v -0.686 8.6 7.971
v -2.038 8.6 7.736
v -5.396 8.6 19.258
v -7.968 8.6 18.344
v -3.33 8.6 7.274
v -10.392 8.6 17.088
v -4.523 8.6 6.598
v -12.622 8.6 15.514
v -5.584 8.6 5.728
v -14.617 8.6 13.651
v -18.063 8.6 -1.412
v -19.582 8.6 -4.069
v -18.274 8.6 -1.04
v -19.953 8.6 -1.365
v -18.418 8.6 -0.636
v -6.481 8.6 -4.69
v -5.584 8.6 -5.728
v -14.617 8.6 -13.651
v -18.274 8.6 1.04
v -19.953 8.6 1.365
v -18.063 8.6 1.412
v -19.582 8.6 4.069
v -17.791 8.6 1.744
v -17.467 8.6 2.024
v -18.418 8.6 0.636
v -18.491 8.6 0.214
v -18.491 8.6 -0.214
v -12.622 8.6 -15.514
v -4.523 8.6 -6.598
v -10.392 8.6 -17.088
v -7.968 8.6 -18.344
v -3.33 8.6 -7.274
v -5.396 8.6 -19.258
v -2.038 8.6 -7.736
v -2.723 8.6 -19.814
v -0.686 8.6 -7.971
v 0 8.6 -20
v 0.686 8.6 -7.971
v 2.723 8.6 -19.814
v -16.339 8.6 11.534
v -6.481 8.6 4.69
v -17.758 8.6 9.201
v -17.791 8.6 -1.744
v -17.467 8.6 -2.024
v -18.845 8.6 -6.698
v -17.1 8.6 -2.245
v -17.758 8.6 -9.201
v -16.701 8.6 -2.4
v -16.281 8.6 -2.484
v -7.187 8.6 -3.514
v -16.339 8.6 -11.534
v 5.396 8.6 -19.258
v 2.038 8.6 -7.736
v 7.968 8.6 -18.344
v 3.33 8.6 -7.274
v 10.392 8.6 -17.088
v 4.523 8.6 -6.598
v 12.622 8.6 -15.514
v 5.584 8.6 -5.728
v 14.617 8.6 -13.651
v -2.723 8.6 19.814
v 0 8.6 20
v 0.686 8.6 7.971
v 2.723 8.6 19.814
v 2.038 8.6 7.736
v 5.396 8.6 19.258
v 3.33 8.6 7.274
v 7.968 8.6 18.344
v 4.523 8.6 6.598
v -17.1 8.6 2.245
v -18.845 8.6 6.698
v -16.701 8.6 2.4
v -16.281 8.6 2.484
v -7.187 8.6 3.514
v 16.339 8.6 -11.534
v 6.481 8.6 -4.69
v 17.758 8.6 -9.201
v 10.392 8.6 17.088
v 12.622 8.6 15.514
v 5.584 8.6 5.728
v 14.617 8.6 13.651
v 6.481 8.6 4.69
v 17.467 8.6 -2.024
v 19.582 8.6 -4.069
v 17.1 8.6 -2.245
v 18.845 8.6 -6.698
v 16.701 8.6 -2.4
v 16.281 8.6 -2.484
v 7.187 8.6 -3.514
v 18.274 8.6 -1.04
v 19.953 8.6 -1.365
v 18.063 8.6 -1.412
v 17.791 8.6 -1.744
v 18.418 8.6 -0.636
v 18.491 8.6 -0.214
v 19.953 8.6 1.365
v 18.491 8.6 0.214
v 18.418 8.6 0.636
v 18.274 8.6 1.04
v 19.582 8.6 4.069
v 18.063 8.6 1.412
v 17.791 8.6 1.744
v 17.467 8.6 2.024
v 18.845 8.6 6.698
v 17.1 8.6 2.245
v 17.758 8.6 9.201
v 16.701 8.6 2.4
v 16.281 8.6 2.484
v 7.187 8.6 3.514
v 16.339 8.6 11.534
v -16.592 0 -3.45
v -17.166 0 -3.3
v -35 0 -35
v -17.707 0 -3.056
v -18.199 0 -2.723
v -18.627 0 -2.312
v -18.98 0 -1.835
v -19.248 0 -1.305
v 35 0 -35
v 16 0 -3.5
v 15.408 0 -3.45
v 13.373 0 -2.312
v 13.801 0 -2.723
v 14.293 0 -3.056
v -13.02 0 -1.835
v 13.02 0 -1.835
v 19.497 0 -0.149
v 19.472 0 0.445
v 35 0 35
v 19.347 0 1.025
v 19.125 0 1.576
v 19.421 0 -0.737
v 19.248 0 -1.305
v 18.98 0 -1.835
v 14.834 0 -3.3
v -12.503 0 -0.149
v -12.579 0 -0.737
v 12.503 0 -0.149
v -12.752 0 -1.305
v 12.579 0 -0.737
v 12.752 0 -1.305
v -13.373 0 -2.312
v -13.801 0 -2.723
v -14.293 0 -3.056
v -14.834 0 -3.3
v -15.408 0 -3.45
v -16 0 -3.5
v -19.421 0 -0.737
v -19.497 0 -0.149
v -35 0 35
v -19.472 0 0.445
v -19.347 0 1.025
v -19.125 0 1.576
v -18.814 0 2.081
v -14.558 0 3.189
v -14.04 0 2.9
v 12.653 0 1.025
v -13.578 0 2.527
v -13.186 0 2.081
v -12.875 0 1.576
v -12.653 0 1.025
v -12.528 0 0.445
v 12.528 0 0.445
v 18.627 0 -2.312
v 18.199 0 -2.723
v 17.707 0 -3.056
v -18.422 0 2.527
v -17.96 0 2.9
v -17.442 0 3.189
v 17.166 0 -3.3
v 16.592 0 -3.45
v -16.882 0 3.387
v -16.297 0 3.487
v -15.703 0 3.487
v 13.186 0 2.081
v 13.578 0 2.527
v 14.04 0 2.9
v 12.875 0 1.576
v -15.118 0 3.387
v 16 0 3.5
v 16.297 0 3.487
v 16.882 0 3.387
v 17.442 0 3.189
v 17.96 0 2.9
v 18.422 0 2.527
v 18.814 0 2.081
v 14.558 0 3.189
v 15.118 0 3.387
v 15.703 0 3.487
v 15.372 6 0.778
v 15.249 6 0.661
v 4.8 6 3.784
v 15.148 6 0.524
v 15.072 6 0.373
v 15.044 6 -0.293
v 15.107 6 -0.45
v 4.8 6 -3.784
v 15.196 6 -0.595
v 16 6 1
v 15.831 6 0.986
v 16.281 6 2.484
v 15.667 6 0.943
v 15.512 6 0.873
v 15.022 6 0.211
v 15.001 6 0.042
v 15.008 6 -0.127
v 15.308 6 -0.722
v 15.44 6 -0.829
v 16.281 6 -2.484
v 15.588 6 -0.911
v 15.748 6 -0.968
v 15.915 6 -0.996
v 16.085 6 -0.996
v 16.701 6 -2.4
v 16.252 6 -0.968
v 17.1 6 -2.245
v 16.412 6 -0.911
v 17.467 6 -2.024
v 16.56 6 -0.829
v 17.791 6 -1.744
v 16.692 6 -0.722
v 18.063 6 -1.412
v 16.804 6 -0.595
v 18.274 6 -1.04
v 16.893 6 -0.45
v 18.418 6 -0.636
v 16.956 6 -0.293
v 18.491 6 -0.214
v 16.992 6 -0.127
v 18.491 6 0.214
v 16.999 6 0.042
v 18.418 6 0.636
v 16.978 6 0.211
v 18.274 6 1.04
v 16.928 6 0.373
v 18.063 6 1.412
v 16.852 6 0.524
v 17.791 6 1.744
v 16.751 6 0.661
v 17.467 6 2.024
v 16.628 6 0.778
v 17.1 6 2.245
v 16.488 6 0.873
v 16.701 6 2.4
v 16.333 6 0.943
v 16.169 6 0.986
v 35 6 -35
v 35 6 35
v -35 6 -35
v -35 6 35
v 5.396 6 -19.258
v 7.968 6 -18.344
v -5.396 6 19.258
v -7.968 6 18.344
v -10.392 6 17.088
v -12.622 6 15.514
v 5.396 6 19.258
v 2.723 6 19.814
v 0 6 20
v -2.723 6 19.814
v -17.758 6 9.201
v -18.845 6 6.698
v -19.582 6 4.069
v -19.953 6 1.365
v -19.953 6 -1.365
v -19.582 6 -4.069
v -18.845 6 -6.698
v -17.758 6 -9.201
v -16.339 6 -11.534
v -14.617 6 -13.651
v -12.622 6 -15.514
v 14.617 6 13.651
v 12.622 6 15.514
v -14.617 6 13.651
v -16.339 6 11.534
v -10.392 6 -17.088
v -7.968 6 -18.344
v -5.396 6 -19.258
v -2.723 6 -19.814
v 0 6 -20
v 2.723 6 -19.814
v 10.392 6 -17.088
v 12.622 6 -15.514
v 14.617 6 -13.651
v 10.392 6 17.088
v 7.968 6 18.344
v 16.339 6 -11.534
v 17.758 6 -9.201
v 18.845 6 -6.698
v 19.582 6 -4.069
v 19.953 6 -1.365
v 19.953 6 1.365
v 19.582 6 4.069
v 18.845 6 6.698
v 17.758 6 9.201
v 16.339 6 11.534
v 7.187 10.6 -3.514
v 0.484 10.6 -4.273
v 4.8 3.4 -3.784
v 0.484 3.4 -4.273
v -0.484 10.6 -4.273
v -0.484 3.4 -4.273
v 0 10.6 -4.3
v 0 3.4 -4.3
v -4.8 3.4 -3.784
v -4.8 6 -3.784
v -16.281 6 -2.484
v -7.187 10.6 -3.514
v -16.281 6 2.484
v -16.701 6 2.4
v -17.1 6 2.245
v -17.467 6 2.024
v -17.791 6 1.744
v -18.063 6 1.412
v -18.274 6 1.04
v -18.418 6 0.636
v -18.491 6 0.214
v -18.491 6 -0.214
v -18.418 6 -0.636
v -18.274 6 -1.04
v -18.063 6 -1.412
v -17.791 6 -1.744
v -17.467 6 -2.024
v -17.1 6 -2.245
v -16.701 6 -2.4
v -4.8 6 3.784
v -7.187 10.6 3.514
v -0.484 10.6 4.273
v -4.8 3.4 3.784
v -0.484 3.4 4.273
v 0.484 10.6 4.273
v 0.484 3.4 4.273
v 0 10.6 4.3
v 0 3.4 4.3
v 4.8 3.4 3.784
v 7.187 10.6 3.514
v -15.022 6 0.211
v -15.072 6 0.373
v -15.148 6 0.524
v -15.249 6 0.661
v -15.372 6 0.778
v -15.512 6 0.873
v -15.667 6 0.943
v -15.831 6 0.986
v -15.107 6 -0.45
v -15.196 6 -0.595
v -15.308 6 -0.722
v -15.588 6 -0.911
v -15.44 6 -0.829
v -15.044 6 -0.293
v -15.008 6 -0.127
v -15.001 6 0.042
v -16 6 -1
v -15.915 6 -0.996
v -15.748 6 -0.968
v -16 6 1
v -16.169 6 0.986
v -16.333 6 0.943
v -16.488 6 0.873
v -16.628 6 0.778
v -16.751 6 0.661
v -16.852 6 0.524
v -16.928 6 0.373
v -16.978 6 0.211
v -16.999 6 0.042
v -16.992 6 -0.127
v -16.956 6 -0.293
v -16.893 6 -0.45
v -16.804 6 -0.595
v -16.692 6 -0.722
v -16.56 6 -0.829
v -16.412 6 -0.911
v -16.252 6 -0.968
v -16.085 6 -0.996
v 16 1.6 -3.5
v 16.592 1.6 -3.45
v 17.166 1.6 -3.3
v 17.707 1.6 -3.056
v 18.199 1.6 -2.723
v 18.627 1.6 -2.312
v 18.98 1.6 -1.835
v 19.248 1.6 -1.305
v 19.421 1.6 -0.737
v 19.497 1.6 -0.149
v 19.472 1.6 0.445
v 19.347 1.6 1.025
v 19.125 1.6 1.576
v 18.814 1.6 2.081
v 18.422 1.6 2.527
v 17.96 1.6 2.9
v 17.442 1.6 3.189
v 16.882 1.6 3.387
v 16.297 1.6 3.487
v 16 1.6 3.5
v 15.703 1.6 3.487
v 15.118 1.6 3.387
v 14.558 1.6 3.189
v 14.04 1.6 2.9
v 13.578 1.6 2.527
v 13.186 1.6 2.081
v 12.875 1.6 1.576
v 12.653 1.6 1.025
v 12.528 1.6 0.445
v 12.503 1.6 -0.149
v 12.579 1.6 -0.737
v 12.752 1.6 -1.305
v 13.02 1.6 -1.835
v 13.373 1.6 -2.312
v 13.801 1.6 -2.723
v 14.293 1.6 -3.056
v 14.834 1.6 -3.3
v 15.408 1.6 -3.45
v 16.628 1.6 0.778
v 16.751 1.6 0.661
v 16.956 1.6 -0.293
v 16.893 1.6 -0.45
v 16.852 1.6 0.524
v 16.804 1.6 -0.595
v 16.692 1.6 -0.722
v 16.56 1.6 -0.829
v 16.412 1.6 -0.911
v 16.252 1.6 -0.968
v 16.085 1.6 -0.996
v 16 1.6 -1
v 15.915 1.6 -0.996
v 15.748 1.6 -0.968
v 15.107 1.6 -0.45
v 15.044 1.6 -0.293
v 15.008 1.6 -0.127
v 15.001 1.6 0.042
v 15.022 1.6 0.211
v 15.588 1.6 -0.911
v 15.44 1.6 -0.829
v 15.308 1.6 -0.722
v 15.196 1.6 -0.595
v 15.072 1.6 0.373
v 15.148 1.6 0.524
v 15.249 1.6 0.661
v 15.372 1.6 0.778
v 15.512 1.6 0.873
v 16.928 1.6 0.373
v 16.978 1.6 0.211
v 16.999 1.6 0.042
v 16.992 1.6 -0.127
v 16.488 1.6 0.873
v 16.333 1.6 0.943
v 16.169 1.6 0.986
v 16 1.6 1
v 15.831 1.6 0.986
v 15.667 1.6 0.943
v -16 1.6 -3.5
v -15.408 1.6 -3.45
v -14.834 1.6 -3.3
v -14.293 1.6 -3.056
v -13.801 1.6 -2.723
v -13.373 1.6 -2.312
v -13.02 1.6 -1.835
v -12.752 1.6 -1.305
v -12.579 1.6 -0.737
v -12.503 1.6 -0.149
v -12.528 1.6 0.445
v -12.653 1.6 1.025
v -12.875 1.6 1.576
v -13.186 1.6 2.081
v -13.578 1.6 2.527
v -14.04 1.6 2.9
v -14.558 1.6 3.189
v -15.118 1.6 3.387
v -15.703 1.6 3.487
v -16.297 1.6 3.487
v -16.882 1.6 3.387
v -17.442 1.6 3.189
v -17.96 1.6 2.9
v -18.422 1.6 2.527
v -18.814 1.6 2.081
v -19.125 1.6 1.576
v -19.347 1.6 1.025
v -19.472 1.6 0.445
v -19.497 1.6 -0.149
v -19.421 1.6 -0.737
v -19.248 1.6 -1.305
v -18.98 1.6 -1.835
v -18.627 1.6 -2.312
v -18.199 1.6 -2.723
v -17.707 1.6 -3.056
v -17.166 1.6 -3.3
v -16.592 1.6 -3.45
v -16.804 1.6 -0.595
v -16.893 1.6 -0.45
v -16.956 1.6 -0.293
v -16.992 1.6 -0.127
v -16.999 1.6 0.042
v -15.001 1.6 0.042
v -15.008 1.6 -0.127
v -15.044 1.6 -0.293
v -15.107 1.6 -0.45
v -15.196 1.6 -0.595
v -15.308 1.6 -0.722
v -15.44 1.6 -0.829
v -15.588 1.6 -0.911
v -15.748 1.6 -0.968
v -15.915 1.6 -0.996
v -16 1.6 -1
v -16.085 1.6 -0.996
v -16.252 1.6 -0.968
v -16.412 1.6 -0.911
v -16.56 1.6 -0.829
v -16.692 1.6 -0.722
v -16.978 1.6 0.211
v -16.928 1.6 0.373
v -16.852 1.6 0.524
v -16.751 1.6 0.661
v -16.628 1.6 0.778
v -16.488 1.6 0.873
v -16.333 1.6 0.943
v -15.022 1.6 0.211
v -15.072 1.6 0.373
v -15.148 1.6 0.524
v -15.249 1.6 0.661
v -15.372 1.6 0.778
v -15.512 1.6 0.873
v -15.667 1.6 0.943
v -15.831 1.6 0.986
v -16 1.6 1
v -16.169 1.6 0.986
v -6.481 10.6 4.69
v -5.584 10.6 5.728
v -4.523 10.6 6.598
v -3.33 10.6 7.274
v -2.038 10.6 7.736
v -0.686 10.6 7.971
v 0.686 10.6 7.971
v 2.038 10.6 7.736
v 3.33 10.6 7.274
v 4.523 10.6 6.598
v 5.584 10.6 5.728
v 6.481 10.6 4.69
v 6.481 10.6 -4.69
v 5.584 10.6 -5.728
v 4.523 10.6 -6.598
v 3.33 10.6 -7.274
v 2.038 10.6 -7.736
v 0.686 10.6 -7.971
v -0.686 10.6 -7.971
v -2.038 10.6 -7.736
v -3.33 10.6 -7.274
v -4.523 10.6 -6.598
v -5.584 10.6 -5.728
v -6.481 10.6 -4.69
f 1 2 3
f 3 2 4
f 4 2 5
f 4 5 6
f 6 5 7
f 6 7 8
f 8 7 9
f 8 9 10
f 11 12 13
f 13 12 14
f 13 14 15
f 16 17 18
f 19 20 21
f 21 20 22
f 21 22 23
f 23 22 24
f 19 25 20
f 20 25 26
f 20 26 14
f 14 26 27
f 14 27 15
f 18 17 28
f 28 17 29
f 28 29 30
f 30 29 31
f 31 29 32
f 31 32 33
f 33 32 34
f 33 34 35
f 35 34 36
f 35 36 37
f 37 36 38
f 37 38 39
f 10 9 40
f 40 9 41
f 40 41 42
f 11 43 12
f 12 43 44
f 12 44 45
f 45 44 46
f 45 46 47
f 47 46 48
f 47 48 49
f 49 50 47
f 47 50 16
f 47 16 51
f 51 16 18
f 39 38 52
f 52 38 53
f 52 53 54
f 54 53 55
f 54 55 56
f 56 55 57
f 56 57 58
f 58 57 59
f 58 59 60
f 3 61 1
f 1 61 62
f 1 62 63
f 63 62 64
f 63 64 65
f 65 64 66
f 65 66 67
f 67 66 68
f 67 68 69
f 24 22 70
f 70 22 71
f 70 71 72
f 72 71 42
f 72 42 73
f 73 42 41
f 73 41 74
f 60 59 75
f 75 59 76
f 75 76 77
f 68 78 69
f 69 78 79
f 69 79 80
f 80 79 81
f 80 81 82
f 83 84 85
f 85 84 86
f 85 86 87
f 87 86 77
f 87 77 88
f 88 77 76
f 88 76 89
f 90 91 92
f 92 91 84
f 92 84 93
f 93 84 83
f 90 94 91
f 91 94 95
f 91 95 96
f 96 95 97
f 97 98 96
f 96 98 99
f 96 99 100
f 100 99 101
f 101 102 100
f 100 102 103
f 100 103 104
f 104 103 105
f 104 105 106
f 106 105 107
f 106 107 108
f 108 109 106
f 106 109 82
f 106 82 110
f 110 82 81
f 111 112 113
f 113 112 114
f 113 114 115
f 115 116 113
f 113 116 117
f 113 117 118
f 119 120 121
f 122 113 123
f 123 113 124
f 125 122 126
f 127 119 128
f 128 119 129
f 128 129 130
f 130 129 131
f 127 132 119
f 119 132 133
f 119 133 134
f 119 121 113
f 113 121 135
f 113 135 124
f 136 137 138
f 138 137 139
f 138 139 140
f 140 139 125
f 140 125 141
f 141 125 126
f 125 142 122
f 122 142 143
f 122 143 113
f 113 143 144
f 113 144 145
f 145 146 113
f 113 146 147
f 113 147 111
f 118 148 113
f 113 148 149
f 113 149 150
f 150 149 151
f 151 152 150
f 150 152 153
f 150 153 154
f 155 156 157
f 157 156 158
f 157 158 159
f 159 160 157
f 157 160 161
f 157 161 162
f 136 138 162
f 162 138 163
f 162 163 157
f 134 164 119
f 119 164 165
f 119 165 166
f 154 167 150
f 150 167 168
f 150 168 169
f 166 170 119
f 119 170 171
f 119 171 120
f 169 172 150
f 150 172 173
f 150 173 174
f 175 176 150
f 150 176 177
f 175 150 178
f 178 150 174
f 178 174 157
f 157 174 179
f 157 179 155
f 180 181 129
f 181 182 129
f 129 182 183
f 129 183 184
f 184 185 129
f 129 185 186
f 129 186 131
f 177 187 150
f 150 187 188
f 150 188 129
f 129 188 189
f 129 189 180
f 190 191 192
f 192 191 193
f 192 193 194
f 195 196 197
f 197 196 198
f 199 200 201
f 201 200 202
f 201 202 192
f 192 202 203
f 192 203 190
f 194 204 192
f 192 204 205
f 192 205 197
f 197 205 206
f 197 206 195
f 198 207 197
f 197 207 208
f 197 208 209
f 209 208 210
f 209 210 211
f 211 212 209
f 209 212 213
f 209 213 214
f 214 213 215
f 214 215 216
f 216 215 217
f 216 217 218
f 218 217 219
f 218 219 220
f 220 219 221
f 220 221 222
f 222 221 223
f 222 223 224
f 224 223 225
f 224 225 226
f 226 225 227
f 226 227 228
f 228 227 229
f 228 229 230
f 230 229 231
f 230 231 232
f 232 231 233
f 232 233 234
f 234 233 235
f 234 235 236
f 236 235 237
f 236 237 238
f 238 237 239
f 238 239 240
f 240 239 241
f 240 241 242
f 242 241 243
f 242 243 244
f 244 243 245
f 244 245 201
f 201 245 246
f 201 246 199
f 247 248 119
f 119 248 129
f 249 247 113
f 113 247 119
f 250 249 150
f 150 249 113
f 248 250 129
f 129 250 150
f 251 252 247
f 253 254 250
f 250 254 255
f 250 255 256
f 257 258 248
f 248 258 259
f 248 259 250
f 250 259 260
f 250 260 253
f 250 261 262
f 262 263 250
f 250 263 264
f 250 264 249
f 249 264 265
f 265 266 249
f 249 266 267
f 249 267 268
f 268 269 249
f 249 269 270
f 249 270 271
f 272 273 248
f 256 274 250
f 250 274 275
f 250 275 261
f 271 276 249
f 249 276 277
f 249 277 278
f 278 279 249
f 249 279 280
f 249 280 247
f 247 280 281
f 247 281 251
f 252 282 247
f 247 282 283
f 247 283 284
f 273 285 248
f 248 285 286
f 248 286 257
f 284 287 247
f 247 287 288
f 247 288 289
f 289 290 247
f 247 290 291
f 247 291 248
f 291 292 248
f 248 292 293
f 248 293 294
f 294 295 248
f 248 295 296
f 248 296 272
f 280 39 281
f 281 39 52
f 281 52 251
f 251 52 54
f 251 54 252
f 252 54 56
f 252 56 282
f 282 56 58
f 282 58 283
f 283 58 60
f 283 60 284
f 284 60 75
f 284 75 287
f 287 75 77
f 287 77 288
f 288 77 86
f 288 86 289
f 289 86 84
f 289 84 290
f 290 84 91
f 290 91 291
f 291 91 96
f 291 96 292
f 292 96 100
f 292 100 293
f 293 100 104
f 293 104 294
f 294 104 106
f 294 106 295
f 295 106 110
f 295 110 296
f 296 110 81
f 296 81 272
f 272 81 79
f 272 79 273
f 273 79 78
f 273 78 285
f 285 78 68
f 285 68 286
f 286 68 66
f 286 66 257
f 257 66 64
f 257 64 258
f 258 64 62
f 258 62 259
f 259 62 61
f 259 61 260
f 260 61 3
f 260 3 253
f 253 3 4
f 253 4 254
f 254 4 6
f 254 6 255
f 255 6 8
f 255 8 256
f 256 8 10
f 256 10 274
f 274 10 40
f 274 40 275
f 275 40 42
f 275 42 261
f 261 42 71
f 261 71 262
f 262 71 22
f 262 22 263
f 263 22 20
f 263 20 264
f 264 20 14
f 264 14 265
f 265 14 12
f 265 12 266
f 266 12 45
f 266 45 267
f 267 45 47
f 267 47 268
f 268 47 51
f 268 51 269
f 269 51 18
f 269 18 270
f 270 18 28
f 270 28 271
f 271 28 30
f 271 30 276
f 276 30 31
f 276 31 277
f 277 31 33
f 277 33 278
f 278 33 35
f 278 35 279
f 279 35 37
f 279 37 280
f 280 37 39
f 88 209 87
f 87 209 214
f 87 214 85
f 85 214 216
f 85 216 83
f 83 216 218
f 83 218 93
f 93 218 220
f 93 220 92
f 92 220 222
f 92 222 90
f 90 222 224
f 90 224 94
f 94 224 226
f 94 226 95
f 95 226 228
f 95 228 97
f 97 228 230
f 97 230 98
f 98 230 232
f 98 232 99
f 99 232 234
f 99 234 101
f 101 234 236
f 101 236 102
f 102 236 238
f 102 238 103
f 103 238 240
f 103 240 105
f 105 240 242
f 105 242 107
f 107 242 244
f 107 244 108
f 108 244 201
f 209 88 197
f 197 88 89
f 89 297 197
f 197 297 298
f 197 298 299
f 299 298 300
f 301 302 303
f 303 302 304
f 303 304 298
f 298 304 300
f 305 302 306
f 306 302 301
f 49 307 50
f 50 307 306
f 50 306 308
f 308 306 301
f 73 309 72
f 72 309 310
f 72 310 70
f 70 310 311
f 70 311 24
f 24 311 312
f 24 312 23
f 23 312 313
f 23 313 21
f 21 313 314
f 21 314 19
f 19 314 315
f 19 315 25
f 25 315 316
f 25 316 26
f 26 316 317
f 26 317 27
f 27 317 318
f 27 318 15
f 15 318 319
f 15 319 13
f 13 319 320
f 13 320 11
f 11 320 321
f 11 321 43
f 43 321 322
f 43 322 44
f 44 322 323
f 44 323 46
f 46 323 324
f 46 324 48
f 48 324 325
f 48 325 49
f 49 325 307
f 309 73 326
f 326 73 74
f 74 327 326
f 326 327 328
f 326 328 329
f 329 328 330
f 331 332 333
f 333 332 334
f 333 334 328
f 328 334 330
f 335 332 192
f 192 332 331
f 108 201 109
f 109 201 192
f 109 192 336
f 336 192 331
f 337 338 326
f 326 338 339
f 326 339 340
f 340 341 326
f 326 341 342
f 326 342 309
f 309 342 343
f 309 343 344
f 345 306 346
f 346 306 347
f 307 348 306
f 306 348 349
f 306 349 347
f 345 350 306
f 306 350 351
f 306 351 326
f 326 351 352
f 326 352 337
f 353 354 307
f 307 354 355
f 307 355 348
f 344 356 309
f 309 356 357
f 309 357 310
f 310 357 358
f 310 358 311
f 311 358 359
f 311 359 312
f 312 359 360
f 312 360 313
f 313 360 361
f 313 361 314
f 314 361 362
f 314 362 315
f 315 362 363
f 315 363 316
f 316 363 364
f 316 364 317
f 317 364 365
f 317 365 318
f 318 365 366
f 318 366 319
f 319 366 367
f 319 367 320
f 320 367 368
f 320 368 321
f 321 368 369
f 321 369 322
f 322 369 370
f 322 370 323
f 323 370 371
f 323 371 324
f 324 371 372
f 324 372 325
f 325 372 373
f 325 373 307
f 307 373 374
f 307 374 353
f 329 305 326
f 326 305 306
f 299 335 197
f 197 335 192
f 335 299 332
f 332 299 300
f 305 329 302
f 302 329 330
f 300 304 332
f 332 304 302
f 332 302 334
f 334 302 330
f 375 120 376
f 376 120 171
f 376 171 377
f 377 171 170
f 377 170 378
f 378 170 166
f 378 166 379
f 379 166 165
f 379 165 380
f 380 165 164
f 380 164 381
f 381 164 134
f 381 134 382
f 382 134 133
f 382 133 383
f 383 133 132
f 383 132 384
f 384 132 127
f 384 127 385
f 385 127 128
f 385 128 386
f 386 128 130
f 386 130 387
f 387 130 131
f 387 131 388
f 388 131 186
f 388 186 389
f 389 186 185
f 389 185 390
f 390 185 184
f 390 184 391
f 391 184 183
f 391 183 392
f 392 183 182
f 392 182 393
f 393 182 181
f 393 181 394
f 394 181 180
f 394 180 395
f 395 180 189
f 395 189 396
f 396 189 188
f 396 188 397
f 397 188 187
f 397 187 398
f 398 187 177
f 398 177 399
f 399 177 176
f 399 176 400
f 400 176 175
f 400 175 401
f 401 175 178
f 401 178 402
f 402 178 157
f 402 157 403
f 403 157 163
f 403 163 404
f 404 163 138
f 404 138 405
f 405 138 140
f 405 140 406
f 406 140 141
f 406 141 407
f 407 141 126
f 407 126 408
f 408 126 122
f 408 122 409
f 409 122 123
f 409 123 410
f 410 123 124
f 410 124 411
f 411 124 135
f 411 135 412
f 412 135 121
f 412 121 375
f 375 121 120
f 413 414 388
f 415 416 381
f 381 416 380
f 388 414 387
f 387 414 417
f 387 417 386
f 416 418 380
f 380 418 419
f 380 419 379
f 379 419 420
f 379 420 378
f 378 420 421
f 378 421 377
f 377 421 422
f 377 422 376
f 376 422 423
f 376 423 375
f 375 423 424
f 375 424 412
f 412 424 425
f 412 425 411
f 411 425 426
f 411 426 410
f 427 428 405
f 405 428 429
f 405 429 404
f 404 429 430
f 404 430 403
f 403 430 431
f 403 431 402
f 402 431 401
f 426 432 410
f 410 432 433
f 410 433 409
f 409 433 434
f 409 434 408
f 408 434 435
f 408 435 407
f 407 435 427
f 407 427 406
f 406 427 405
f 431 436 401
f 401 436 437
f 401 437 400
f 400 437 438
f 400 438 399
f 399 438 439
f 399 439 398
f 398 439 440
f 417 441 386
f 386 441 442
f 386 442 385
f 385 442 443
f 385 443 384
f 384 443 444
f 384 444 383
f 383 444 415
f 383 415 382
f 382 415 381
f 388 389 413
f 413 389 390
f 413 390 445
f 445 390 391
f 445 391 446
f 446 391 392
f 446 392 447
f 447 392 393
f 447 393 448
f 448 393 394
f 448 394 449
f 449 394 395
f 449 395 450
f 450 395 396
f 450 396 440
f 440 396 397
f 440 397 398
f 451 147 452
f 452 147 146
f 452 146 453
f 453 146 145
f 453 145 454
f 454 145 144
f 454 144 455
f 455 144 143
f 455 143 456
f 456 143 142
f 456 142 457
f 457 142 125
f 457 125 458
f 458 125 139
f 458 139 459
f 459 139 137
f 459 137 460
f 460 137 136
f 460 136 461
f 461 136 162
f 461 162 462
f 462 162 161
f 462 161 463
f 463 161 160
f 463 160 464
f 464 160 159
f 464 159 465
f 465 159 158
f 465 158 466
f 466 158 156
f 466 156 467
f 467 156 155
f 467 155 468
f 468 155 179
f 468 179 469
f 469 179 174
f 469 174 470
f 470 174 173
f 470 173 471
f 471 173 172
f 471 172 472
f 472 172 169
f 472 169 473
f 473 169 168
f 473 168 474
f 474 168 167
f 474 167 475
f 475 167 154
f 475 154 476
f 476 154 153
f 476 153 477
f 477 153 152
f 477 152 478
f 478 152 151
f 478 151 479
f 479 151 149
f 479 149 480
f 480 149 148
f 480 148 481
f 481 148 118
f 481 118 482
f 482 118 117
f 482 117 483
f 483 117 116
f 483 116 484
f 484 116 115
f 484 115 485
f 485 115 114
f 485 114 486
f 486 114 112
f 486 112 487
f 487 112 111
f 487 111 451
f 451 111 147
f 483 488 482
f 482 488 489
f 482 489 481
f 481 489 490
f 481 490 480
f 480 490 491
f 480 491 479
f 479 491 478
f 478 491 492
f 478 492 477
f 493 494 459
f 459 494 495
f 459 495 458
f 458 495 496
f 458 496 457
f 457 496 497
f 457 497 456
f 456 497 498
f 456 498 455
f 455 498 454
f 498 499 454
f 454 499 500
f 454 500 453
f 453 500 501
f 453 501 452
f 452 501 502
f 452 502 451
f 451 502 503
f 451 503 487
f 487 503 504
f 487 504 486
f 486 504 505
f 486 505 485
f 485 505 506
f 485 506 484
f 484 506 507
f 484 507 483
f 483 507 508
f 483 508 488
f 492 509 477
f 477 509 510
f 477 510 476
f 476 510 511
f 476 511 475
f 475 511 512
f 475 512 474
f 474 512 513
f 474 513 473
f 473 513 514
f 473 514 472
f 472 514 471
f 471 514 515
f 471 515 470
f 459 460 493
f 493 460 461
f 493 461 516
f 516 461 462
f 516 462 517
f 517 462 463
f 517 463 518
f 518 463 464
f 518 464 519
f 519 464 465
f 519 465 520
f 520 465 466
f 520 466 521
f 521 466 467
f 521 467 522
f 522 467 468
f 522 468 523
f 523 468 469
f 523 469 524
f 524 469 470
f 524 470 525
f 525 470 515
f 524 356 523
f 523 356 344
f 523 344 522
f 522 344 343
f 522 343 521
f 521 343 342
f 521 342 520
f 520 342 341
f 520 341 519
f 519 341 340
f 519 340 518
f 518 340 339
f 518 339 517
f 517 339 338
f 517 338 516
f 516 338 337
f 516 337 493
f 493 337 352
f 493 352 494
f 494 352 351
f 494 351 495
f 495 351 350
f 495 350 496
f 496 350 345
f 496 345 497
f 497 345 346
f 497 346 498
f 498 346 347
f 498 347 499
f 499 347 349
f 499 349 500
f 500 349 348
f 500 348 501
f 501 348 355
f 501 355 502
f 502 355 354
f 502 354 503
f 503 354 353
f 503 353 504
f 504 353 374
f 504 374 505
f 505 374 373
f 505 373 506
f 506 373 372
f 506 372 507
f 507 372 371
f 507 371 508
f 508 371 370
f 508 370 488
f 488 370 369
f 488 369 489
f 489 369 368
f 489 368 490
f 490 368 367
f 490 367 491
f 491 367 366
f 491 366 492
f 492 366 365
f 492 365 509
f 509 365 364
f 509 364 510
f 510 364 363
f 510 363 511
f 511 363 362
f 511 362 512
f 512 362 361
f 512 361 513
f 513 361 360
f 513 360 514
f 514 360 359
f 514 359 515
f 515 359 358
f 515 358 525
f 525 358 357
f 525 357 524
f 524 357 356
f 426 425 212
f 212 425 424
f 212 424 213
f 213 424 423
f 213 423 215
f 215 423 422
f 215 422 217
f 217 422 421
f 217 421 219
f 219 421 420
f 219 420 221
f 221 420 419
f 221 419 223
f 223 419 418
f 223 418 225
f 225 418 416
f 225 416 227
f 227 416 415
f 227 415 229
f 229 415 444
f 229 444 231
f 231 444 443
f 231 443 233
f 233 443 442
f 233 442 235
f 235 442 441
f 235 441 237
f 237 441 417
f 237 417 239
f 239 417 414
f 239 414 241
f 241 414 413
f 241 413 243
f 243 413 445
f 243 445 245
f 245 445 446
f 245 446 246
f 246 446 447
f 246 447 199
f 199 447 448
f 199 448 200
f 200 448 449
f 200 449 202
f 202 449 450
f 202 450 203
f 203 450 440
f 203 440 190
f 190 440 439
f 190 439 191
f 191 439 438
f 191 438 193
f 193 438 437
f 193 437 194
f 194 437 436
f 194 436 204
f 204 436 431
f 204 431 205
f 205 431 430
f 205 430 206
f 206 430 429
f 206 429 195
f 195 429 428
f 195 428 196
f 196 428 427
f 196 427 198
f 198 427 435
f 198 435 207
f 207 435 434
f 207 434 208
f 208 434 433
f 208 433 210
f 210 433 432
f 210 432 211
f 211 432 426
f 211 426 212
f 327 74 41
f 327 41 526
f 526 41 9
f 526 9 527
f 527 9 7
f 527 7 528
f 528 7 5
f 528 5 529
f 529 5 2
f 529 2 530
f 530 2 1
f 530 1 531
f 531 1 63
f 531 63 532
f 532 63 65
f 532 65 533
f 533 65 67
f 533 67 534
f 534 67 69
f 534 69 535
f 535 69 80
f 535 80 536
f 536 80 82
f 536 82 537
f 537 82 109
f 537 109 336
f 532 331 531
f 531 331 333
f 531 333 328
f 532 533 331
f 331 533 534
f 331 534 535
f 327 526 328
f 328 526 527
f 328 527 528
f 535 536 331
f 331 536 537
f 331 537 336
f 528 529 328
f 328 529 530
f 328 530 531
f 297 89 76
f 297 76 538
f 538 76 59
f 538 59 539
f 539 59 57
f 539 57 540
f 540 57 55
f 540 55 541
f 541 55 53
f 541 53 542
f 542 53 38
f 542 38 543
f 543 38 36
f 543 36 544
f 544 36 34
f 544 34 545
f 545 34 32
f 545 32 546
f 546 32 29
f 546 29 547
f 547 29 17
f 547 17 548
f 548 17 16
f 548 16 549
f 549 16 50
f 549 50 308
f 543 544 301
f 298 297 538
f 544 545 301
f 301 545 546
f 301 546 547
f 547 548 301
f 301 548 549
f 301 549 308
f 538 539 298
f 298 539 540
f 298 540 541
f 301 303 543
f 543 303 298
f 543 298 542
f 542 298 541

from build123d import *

# Parameters (mm, degrees)
SKETCH1_W           = 70
SKETCH1_H           = 70
BOSS_EXTRUDE1_DEPTH = 6
SKETCH2_R           = 20
BOSS_EXTRUDE6_DEPTH = 2.6
CUT_EXTRUDE1_START  = -2.6
CUT_EXTRUDE1_DEPTH  = 2.6
SKETCH4_R           = 3.5
CUT_EXTRUDE2_DEPTH  = 1.6
SKETCH5_R           = 1
CUT_EXTRUDE3_DEPTH  = 4.4
BOSS_EXTRUDE7_DEPTH = 2


with BuildPart() as part:
    # Sketch1 → Boss-Extrude1 (new body)
    with BuildSketch(Plane(origin=(0, 0, 0), x_dir=(1, 0, 0), z_dir=(0, 1, 0))):
        Rectangle(SKETCH1_W, SKETCH1_H)
    extrude(amount=BOSS_EXTRUDE1_DEPTH)

    # Sketch2 → Boss-Extrude6 (add)
    with BuildSketch(Plane(origin=(0, 6, 0), x_dir=(1, 0, 0), z_dir=(0, 1, 0))):
        with Locations(Location((0, 0, 0), (0, 0, 270))):
            Circle(SKETCH2_R)
        with BuildLine():
            Line((-16.28125, -2.484129312), (-0.48375, -4.272702416))
            ThreePointArc((-0.48375, -4.272702416), (0, -4.3), (0.48375, -4.272702416))
            Line((0.48375, -4.272702416), (16.28125, -2.484129312))
            ThreePointArc((16.28125, -2.484129312), (18.5, 0), (16.28125, 2.484129312))
            Line((16.28125, 2.484129312), (0.48375, 4.272702416))
            ThreePointArc((0.48375, 4.272702416), (0, 4.3), (-0.48375, 4.272702416))
            Line((-0.48375, 4.272702416), (-16.28125, 2.484129312))
            ThreePointArc((-16.28125, 2.484129312), (-18.5, 0), (-16.28125, -2.484129312))
        make_face(mode=Mode.SUBTRACT)
    extrude(amount=BOSS_EXTRUDE6_DEPTH)

    # Sketch3 → Cut-Extrude1 (cut)
    with BuildSketch(Plane(origin=(0, 6, 0), x_dir=(1, 0, 0), z_dir=(0, 1, 0)).offset(CUT_EXTRUDE1_START)):
        with BuildLine():
            Line((-4.8, 3.784022013), (-4.8, -3.784022013))
            Line((-4.8, -3.784022013), (-0.48375, -4.272702416))
            ThreePointArc((-0.48375, -4.272702416), (0, -4.3), (0.48375, -4.272702416))
            Line((0.48375, -4.272702416), (4.8, -3.784022013))
            Line((4.8, -3.784022013), (4.8, 3.784022013))
            Line((4.8, 3.784022013), (0.48375, 4.272702416))
            ThreePointArc((0.48375, 4.272702416), (0, 4.3), (-0.48375, 4.272702416))
            Line((-0.48375, 4.272702416), (-4.8, 3.784022013))
        make_face()
    extrude(amount=CUT_EXTRUDE1_DEPTH, mode=Mode.SUBTRACT)

    # Sketch4 → Cut-Extrude2 (cut)
    with BuildSketch(Plane.XZ):
        with Locations(Location((16, 0, 0), (0, 0, 90))):
            Circle(SKETCH4_R)
        with Locations(Location((-16, 0, 0), (0, 0, 270))):
            Circle(SKETCH4_R)
    extrude(amount=-CUT_EXTRUDE2_DEPTH, mode=Mode.SUBTRACT)

    # Sketch5 → Cut-Extrude3 (cut)
    with BuildSketch(Plane(origin=(0, 6, 0), x_dir=(1, 0, 0), z_dir=(0, 1, 0))):
        with Locations(Location((16, 0, 0), (0, 0, 270))):
            Circle(SKETCH5_R)
        with Locations(Location((-16, 0, 0), (0, 0, 90))):
            Circle(SKETCH5_R)
    extrude(amount=-CUT_EXTRUDE3_DEPTH, mode=Mode.SUBTRACT)

    # Sketch6 → Boss-Extrude7 (add)
    with BuildSketch(Plane(origin=(0, 8.6, 0), x_dir=(1, 0, 0), z_dir=(0, 1, 0))):
        with BuildLine():
            Line((7.187033827, 3.513765042), (0.48375, 4.272702416))
            ThreePointArc((0.48375, 4.272702416), (0, 4.3), (-0.48375, 4.272702416))
            Line((-0.48375, 4.272702416), (-7.187033827, 3.513765042))
            ThreePointArc((-7.187033827, 3.513765042), (0, 8), (7.187033827, 3.513765042))
        make_face()
        with BuildLine():
            Line((0.48375, -4.272702416), (7.187033827, -3.513765042))
            ThreePointArc((7.187033827, -3.513765042), (0, -8), (-7.187033827, -3.513765042))
            Line((-7.187033827, -3.513765042), (-0.48375, -4.272702416))
            ThreePointArc((-0.48375, -4.272702416), (0, -4.3), (0.48375, -4.272702416))
        make_face()
    extrude(amount=BOSS_EXTRUDE7_DEPTH)


solid = part.part
